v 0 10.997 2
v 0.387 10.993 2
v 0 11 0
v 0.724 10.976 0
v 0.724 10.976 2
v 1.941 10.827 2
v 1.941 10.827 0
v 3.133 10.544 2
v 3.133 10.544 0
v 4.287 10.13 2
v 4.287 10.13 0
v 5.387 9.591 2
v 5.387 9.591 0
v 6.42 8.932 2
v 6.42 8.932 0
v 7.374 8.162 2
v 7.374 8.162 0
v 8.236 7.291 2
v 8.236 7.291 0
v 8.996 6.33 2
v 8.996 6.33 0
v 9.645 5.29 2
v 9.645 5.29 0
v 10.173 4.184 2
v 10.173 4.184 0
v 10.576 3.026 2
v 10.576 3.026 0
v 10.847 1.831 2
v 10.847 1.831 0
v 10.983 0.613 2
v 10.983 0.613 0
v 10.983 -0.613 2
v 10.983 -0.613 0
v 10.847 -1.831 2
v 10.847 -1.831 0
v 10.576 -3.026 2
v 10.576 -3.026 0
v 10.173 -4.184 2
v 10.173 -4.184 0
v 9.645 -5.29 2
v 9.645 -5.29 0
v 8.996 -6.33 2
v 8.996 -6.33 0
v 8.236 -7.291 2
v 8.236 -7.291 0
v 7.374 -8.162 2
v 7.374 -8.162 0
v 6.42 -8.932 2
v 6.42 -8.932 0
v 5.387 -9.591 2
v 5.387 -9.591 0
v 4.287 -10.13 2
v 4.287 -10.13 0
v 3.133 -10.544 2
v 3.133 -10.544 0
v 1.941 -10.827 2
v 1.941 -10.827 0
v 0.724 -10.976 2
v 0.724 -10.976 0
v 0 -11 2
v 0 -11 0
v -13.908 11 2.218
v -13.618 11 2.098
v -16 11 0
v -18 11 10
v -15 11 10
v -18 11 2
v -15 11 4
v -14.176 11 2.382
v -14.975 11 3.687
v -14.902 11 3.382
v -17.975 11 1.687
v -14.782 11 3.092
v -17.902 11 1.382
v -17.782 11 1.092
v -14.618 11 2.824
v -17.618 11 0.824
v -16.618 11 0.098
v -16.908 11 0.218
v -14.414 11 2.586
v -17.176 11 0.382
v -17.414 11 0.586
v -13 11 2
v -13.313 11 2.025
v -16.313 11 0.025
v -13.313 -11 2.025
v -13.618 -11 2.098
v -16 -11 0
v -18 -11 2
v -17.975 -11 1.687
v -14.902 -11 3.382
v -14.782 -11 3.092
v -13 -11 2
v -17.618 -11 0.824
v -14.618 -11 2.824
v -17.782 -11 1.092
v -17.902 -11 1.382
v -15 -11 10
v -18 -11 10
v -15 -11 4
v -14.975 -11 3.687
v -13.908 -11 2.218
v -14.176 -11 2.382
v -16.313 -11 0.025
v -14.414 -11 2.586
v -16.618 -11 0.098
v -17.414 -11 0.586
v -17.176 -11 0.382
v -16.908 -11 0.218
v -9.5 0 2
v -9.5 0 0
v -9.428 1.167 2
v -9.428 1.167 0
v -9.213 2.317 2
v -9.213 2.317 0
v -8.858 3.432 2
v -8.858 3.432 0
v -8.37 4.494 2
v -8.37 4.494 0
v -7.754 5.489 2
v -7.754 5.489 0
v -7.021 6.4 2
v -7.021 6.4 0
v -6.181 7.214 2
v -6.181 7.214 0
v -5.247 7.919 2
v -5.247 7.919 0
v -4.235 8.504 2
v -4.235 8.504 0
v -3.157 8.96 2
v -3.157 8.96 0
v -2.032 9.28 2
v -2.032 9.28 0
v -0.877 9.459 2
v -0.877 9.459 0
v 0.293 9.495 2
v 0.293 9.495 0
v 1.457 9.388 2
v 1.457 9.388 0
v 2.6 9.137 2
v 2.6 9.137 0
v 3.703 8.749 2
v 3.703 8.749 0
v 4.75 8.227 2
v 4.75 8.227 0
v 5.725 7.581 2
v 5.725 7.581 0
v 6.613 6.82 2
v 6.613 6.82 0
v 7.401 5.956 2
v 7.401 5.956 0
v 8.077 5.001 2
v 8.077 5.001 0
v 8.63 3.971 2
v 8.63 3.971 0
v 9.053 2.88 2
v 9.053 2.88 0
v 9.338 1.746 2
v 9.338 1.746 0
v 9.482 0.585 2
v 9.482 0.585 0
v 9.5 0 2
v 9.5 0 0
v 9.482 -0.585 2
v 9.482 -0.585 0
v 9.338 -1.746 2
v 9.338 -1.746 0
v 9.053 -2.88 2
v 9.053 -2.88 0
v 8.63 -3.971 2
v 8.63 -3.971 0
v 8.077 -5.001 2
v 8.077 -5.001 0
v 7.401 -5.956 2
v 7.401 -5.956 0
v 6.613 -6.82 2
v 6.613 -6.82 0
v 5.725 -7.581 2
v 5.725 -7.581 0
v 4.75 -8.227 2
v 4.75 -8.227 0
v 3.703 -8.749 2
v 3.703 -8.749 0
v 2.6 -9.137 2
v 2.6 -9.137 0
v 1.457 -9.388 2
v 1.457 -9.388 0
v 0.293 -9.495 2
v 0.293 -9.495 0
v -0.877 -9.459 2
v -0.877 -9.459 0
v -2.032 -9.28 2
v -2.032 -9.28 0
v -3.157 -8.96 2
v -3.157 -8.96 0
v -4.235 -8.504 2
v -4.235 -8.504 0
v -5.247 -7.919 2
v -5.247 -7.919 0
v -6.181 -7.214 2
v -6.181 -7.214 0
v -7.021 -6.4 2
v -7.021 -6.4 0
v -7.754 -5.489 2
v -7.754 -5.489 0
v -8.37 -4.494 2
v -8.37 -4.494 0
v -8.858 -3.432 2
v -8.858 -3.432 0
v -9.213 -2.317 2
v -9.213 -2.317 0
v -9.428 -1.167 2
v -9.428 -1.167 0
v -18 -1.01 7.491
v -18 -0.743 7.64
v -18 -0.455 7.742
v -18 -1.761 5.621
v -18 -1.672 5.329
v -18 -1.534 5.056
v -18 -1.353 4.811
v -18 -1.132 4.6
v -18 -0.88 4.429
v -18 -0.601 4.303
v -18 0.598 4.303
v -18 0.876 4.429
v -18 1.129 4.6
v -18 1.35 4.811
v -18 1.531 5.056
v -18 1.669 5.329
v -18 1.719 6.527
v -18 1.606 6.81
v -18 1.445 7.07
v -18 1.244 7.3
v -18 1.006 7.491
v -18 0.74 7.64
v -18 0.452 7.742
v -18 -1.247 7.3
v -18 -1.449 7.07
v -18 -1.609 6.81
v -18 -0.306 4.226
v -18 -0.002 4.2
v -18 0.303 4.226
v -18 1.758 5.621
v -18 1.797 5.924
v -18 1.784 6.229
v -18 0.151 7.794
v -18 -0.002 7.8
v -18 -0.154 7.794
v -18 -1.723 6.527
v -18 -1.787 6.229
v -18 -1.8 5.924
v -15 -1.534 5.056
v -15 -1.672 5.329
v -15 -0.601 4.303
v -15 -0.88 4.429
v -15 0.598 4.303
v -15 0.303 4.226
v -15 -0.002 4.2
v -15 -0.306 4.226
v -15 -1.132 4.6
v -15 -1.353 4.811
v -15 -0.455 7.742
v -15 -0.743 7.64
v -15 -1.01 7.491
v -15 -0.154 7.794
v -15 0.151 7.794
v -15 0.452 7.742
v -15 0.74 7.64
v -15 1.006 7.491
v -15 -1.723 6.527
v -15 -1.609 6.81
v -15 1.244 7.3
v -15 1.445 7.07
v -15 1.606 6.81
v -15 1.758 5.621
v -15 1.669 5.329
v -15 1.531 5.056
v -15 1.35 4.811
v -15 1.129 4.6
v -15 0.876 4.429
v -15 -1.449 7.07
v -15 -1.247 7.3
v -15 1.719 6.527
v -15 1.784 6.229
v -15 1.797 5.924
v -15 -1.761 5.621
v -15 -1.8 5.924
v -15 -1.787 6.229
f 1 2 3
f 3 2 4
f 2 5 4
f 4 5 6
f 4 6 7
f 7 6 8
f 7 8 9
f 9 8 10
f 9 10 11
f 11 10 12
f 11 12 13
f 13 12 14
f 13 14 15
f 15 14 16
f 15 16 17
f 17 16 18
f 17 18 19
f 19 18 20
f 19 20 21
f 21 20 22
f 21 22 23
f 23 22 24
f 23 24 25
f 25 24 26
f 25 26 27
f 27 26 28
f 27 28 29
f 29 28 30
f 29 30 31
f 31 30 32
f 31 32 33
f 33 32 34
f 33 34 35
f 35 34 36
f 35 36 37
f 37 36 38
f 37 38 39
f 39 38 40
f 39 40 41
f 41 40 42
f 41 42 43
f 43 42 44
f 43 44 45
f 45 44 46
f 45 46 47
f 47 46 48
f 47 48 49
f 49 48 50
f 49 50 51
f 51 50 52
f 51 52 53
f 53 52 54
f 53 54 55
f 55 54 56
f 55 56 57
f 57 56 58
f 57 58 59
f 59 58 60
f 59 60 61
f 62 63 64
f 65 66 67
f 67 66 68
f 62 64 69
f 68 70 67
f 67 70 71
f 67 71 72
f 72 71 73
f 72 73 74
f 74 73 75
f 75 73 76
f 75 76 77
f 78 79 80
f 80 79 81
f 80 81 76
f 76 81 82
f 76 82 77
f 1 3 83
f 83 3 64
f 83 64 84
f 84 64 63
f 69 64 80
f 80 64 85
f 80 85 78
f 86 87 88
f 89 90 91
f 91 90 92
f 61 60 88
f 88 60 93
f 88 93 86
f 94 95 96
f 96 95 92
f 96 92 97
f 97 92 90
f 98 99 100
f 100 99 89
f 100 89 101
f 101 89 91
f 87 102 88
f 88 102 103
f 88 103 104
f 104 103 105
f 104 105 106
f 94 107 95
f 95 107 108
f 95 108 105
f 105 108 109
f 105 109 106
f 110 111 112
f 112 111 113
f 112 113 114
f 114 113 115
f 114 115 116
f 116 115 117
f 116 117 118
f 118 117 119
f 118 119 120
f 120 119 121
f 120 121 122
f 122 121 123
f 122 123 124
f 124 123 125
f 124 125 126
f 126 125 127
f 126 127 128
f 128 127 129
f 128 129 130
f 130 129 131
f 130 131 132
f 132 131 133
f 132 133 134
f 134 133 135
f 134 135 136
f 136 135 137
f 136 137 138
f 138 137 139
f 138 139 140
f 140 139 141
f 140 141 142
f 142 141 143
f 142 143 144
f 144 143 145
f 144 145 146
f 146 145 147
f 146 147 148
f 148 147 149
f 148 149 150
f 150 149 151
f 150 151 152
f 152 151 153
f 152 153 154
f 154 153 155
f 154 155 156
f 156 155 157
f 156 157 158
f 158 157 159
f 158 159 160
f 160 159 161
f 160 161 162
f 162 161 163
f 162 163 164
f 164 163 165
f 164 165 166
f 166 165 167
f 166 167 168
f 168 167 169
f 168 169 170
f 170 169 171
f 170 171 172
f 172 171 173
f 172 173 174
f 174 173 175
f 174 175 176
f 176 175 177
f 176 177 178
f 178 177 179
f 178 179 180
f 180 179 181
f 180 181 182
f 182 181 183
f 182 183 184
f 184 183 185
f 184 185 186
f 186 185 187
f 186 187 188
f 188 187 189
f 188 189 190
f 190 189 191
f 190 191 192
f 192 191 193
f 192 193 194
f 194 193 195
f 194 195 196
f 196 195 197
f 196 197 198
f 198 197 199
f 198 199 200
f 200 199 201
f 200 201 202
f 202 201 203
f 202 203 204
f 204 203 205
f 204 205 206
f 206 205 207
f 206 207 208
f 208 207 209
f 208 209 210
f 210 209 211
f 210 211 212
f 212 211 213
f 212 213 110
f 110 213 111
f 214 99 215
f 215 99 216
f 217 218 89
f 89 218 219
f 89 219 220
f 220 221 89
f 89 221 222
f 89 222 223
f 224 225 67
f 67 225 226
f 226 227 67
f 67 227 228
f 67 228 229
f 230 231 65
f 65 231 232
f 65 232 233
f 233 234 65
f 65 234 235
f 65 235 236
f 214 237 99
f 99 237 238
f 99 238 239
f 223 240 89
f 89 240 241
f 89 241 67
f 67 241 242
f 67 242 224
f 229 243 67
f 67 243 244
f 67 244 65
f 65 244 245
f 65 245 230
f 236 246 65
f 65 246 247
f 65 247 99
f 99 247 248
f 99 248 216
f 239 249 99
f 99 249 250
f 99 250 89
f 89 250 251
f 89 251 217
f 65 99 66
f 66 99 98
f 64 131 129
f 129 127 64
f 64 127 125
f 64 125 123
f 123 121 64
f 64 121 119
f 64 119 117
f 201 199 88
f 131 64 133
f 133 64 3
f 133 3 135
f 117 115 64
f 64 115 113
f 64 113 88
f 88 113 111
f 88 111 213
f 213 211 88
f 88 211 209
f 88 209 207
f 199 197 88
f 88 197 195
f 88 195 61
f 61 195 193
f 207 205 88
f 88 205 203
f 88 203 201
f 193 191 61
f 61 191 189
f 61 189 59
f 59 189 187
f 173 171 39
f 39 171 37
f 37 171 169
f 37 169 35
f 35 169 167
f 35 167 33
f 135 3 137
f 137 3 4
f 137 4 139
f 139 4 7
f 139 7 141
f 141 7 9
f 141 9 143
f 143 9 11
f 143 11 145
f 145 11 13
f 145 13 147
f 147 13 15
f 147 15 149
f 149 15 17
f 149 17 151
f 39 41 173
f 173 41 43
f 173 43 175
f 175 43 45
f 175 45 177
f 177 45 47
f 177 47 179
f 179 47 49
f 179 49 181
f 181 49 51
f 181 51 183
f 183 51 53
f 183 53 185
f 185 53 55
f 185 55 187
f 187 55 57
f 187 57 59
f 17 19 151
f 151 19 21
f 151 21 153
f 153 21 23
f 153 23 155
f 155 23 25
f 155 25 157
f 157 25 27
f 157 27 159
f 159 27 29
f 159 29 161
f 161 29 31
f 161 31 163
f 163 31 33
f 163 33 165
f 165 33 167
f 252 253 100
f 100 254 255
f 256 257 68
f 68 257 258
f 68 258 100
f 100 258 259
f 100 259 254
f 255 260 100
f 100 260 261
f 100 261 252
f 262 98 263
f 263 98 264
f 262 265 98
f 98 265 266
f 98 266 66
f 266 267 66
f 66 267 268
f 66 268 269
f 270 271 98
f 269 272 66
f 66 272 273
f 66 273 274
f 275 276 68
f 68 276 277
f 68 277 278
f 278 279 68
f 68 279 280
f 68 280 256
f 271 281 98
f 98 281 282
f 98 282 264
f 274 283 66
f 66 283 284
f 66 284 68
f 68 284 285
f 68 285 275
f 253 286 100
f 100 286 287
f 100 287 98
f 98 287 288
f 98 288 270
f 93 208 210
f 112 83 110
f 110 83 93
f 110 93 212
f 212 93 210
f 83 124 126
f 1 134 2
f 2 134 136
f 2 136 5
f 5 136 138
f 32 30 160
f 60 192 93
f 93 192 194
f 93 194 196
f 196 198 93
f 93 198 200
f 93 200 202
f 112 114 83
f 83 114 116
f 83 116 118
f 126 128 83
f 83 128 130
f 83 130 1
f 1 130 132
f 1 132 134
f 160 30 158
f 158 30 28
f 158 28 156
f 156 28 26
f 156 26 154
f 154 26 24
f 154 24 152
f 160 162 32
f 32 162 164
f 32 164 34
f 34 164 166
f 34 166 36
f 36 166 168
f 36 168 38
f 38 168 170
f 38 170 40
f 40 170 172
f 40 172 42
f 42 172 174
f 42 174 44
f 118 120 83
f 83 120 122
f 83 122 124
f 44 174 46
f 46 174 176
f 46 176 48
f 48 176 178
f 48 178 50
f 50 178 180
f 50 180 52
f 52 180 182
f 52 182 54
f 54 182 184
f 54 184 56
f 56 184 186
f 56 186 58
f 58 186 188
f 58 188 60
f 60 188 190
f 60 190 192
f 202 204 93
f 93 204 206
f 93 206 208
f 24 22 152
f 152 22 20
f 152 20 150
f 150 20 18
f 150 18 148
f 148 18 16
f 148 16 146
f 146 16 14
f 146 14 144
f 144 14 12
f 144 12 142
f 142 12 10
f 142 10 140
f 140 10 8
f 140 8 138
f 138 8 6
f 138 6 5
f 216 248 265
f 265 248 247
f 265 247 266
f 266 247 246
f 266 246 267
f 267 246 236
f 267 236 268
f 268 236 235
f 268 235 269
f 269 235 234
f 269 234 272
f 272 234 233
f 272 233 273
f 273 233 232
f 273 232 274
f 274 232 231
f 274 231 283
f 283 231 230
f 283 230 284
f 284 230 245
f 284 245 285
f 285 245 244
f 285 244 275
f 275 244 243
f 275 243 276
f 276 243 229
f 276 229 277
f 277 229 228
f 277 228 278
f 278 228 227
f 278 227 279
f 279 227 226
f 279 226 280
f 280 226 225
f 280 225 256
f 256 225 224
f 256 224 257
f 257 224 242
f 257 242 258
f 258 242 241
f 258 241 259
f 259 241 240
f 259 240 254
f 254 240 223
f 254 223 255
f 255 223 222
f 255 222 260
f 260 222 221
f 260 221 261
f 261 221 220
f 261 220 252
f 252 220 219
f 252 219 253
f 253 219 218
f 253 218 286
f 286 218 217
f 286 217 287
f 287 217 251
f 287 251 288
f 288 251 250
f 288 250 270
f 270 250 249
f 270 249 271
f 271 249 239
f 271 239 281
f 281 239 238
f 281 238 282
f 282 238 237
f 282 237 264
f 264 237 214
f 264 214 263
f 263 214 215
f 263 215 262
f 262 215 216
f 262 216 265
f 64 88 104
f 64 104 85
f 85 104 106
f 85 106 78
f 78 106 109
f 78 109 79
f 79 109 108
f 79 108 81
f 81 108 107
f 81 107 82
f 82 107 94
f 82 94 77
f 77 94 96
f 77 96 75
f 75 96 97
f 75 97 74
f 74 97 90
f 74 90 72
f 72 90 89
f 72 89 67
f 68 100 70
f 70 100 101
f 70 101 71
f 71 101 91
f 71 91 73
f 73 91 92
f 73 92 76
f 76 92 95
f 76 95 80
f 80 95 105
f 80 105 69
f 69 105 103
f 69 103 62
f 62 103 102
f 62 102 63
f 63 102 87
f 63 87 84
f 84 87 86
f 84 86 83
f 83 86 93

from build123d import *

# Parameters (mm, degrees)
F_10_MM_EXTRUDE_DEPTH  = 10
F_8_START              = -8
SKETCH2_R              = 9.5
F_8_MM_CUT_DEPTH       = 8
SKETCH4_R              = 1.8
CUT_EXTRUDE_3_6D_DEPTH = 8
R2_FILET_R             = 2


with BuildPart() as part:
    # Sketch1 → 10 mm extrude (new body)
    with BuildSketch(Plane(origin=(0, 0, 0), x_dir=(0, 1, 0), z_dir=(0, 0, 1))):
        with BuildLine():
            Line((-11, 18), (-11, 0))
            ThreePointArc((-11, 0), (-7.778174593, 7.778174593), (0, 11))
            Line((0, 11), (0, 18))
            Line((0, 18), (-11, 18))
        make_face()
        with BuildLine():
            Line((0, 18), (0, 11))
            ThreePointArc((0, 11), (7.778174593, 7.778174593), (11, 0))
            Line((11, 0), (11, 18))
            Line((11, 18), (0, 18))
        make_face()
        with BuildLine():
            ThreePointArc((0, 11), (-7.778174593, 7.778174593), (-11, 0))
            Line((-11, 0), (-9.5, 0))
            ThreePointArc((-9.5, 0), (-6.717514421, 6.717514421), (0, 9.5))
            Line((0, 9.5), (0, 11))
        make_face()
        with BuildLine():
            Line((-9.5, 0), (-11, 0))
            ThreePointArc((-11, 0), (-7.778174593, -7.778174593), (0, -11))
            Line((0, -11), (0, -9.5))
            ThreePointArc((0, -9.5), (-6.717514421, -6.717514421), (-9.5, 0))
        make_face()
        with BuildLine():
            ThreePointArc((11, 0), (7.778174593, 7.778174593), (0, 11))
            Line((0, 11), (0, 9.5))
            ThreePointArc((0, 9.5), (6.717514421, 6.717514421), (9.5, 0))
            Line((9.5, 0), (11, 0))
        make_face()
        with BuildLine():
            Line((0, -9.5), (0, -11))
            ThreePointArc((0, -11), (7.778174593, -7.778174593), (11, 0))
            Line((11, 0), (9.5, 0))
            ThreePointArc((9.5, 0), (6.717514421, -6.717514421), (0, -9.5))
        make_face()
    extrude(amount=F_10_MM_EXTRUDE_DEPTH)

    # Sketch2 → 8 mm cut (cut)
    with BuildSketch(Plane(origin=(0, 0, 10), x_dir=(0, -1, 0), z_dir=(0, 0, 1)).offset(F_8_START)):
        with BuildLine():
            Line((11, -15), (11, 0))
            ThreePointArc((11, 0), (0, 11), (-11, 0))
            Line((-11, 0), (-11, -15))
            Line((-11, -15), (11, -15))
        make_face()
        with Locations(Location((0, 0, 0), (0, 0, 90))):
            Circle(SKETCH2_R, mode=Mode.SUBTRACT)
    extrude(amount=F_8_MM_CUT_DEPTH, mode=Mode.SUBTRACT)

    # Sketch4 → Cut-Extrude 3.6D (cut)
    with BuildSketch(Plane.YZ.offset(-15)):
        with Locations(Location((-0.001698954, 6, 0), (0, 0, 270))):
            Circle(SKETCH4_R)
    extrude(amount=-CUT_EXTRUDE_3_6D_DEPTH, mode=Mode.SUBTRACT)

    # R2 Filet
    r2_filet_edges = [part.edges().sort_by_distance(p)[0] for p in [
        (-15, 0, 2),
        (-18, 0, 0),
    ]]
    fillet(r2_filet_edges, radius=R2_FILET_R)


solid = part.part
